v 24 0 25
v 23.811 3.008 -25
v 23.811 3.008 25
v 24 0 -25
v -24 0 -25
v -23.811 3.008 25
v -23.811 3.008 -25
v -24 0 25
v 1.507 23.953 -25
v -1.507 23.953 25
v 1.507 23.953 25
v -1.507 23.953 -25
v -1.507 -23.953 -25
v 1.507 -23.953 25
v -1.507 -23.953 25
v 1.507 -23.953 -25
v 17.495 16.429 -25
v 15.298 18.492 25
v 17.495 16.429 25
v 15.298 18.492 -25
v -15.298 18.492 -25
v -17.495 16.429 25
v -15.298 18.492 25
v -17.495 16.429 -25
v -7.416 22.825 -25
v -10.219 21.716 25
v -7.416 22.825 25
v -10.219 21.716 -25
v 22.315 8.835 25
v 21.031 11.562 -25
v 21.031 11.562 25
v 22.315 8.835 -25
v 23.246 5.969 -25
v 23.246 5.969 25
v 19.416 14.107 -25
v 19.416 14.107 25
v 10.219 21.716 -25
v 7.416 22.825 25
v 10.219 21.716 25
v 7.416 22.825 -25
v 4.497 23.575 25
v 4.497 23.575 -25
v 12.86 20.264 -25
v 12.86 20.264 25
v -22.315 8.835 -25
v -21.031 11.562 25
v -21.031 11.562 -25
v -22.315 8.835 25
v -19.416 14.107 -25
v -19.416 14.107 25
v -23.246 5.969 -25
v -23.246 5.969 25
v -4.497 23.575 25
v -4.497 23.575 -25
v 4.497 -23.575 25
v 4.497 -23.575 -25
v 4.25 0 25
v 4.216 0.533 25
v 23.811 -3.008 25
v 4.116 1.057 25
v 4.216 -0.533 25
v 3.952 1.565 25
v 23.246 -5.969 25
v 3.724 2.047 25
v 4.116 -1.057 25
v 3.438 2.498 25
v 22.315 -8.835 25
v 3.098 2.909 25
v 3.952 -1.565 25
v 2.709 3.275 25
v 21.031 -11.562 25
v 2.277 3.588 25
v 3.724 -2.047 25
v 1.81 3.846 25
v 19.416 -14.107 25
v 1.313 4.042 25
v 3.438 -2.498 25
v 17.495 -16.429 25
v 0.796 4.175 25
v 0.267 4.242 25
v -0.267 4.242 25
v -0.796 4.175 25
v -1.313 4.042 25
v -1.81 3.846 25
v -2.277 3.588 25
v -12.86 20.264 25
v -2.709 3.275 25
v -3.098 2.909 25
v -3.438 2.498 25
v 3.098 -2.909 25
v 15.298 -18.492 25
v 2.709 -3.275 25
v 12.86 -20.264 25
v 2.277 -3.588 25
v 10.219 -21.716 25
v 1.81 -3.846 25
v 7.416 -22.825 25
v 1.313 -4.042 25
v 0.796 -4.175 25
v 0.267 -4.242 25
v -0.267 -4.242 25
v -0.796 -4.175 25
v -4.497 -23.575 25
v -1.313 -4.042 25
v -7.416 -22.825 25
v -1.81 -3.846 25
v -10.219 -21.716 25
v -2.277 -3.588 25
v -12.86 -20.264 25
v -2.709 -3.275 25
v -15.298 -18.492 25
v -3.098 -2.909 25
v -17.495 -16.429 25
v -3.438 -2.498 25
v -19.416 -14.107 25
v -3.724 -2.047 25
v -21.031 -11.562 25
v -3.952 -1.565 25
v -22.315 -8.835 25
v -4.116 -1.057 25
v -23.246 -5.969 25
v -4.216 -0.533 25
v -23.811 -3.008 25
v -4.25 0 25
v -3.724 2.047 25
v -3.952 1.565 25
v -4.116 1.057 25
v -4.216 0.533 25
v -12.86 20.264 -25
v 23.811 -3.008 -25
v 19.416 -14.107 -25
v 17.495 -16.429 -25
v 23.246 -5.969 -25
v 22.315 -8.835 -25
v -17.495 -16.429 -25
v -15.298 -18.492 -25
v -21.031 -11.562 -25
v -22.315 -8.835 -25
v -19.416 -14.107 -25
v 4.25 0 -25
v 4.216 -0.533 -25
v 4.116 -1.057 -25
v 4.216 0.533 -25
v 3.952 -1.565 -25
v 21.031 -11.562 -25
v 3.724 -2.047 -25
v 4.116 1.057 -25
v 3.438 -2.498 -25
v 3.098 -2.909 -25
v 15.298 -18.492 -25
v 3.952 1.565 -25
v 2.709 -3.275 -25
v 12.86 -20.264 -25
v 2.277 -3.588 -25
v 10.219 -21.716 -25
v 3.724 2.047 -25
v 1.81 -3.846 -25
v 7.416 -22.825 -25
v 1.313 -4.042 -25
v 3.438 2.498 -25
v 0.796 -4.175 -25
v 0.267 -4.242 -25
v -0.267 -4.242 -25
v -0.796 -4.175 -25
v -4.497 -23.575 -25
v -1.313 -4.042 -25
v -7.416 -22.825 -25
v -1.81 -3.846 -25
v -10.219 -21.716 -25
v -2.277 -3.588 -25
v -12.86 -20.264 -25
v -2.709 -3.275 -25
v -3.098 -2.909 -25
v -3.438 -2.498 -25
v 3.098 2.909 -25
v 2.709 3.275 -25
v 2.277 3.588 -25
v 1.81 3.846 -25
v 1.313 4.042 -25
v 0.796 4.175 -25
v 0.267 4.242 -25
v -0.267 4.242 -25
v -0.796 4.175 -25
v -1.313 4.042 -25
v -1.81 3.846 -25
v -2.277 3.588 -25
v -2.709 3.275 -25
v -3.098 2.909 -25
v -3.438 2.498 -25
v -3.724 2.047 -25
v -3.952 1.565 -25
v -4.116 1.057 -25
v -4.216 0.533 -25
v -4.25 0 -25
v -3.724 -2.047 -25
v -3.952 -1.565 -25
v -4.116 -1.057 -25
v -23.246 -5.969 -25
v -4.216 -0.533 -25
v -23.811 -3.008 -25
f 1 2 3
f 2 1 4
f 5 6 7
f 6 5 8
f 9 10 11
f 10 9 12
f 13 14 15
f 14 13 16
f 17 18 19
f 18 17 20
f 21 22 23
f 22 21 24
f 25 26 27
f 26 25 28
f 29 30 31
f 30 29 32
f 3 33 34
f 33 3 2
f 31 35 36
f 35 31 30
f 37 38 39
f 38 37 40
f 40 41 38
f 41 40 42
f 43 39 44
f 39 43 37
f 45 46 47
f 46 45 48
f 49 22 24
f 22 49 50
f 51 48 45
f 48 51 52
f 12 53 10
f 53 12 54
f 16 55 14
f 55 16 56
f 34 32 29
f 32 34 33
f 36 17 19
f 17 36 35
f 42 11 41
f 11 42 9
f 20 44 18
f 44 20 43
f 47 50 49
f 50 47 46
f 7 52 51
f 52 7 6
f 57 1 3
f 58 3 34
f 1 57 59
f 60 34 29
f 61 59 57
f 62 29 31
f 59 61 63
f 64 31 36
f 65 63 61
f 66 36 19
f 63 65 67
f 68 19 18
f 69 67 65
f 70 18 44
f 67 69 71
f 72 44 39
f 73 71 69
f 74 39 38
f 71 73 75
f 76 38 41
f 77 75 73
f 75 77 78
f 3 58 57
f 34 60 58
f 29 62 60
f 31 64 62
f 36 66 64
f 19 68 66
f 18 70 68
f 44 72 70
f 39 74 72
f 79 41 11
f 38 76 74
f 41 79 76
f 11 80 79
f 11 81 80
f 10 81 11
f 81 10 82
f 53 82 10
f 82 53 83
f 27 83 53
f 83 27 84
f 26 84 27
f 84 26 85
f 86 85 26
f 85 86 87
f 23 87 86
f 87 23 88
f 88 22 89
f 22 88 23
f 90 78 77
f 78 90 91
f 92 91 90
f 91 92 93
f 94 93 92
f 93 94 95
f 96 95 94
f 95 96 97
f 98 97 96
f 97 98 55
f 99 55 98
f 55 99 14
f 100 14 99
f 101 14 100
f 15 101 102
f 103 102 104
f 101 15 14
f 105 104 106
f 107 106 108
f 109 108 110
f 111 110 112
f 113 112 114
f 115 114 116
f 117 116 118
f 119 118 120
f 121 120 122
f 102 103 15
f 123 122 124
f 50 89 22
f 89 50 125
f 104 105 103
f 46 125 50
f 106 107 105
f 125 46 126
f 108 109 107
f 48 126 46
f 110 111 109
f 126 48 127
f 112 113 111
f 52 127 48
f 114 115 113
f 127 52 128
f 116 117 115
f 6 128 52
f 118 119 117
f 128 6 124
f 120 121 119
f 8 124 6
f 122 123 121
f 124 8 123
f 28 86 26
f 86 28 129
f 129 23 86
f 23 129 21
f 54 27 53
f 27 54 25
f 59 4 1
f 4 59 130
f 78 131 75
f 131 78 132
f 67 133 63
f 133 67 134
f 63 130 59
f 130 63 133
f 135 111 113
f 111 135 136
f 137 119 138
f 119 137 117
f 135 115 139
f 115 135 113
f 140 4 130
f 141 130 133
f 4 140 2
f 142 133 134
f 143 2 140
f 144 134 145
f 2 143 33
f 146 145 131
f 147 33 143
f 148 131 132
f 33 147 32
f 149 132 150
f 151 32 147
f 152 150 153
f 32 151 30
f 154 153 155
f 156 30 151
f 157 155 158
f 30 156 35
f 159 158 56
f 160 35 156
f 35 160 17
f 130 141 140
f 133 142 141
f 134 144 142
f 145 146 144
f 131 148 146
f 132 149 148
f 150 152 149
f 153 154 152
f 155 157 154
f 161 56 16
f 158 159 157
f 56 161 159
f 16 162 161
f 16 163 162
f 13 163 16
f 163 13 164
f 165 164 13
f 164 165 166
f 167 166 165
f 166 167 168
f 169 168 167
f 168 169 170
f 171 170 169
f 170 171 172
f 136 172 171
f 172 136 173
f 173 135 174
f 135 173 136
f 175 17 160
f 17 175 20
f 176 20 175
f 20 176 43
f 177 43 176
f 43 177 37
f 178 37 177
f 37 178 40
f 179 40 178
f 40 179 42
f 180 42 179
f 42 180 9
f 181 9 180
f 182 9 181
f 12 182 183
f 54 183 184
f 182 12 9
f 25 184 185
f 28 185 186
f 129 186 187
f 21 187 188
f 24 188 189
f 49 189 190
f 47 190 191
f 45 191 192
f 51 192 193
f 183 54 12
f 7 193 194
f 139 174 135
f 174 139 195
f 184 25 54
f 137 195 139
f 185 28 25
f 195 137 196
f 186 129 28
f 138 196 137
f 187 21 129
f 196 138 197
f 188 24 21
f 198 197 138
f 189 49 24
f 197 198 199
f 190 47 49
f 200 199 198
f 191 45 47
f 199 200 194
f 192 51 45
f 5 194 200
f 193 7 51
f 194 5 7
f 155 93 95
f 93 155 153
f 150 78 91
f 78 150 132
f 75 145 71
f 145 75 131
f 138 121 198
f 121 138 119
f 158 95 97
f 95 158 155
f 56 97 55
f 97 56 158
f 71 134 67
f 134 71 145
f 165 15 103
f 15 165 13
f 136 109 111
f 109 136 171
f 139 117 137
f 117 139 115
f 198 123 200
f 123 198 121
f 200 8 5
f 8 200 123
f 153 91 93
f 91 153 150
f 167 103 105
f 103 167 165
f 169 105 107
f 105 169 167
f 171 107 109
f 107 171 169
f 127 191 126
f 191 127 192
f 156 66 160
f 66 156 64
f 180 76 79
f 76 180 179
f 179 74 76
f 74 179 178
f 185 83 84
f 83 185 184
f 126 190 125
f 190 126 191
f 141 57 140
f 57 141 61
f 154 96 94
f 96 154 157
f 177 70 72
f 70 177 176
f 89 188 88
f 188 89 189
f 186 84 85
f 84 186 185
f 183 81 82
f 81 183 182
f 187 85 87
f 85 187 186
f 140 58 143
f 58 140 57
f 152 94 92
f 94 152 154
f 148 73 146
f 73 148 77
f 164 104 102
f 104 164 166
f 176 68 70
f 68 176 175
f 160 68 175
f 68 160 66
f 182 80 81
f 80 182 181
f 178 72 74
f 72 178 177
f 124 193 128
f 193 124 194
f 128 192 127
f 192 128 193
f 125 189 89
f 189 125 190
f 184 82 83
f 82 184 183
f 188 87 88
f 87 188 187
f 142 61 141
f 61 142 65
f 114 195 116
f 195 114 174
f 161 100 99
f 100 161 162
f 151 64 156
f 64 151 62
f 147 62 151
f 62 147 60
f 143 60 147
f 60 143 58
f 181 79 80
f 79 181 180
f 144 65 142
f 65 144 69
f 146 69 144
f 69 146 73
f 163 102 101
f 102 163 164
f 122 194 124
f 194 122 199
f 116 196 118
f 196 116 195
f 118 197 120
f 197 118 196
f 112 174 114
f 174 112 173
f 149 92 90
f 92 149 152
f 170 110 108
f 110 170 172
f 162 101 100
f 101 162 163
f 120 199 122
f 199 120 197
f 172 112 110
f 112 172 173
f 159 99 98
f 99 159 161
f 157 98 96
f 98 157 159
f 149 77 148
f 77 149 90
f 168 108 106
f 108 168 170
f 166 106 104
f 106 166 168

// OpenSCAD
$fn = 50;


difference() {
	union() {
		translate(v = [0, 0, -25.0000000000]) {
			cylinder(h = 50, r = 24.0000000000);
		}
	}
	union() {
		translate(v = [0, 0, -100.0000000000]) {
			cylinder(h = 200, r = 4.2500000000);
		}
	}
}
